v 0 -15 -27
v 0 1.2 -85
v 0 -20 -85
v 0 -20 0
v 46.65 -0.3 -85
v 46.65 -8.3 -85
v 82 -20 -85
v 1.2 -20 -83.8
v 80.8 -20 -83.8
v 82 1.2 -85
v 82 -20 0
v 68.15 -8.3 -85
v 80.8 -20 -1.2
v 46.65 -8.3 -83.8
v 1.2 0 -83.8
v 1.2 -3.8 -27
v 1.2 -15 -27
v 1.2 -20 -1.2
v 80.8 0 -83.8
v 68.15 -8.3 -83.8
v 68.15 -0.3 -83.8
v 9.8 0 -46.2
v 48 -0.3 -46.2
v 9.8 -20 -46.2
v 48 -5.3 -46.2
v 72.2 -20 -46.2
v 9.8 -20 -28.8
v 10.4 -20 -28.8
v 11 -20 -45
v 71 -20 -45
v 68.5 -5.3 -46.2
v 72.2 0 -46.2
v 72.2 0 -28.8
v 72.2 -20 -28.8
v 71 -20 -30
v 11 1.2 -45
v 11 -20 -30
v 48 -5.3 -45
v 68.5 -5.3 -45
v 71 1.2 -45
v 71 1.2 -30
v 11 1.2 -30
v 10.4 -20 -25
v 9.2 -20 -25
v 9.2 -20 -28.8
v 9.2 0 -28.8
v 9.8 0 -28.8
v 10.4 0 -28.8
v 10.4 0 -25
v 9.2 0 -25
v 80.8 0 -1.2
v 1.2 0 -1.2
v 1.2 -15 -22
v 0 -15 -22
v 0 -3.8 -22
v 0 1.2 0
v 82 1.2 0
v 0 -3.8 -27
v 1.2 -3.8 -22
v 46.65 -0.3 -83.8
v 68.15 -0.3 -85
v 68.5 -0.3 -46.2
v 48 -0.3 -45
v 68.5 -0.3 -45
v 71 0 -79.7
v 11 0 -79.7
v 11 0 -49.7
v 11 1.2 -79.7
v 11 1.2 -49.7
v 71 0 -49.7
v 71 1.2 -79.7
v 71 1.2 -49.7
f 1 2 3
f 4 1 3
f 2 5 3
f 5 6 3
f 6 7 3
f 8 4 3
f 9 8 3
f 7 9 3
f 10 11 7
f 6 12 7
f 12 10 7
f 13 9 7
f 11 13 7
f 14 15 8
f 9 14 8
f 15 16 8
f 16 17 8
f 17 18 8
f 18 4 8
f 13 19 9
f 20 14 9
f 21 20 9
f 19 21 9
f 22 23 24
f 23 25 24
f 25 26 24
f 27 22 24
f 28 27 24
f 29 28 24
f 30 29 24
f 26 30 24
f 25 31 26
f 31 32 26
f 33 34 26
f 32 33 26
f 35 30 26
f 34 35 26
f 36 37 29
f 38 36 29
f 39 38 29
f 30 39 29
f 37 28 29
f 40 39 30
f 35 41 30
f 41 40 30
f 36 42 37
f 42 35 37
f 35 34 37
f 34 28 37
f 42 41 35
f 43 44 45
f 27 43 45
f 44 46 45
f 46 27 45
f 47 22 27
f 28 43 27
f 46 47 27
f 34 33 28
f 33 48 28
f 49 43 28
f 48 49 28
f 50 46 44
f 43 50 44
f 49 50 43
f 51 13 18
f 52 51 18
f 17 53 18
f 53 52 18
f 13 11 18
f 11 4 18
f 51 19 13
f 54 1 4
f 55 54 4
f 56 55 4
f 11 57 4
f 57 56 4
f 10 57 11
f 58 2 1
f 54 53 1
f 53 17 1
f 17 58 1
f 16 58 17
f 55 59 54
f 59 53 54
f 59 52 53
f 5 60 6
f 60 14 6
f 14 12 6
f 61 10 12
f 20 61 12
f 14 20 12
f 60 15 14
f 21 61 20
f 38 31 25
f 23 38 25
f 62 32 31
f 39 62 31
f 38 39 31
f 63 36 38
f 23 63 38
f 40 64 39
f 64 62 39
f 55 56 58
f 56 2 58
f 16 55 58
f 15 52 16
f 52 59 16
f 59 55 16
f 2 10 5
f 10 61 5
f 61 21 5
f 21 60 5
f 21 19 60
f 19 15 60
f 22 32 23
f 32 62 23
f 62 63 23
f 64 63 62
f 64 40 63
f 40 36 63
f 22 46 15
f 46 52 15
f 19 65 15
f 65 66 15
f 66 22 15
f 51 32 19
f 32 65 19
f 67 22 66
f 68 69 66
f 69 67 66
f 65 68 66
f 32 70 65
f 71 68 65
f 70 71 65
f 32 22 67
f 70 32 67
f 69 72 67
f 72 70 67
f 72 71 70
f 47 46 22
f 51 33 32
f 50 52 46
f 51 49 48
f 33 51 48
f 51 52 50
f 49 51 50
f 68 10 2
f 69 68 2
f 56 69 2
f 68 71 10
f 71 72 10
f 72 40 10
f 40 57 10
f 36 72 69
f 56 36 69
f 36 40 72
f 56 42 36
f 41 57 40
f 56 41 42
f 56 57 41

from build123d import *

# Parameters (mm, degrees)
SKETCH1_W           = 82
SKETCH1_H           = 85
BOSS_EXTRUDE1_DEPTH = 1.2
SKETCH2_W           = 60
SKETCH2_H           = 30
CUT_EXTRUDE1_DEPTH  = 2
SKETCH3_W           = 60
SKETCH3_H           = 15
CUT_EXTRUDE2_DEPTH  = 2
SKETCH4_W           = 82
SKETCH4_H           = 85
SKETCH4_W_2         = 79.6
SKETCH4_H_2         = 82.6
BOSS_EXTRUDE2_DEPTH = 20
SKETCH5_W           = 62.4
SKETCH5_H           = 17.4
SKETCH5_W_2         = 60
SKETCH5_H_2         = 15
BOSS_EXTRUDE4_DEPTH = 20
SKETCH10_W          = 1.2
SKETCH10_H          = 3.8
BOSS_EXTRUDE5_DEPTH = 20
SKETCH11_W          = 5
SKETCH11_H          = 11.2
CUT_EXTRUDE3_DEPTH  = 1.5
SKETCH12_W          = 21.5
SKETCH12_H          = 8
CUT_EXTRUDE4_DEPTH  = 1.5
SKETCH15_W          = 20.5
SKETCH15_H          = 5
CUT_EXTRUDE5_DEPTH  = 1.5


with BuildPart() as part:
    # Sketch1 → Boss-Extrude1 (new body)
    with BuildSketch(Plane(origin=(0, 0, 0), x_dir=(1, 0, 0), z_dir=(0, 1, 0))):
        with Locations((41, 42.5)):
            Rectangle(SKETCH1_W, SKETCH1_H)
    extrude(amount=BOSS_EXTRUDE1_DEPTH)

    # Sketch2 → Cut-Extrude1 (cut)
    with BuildSketch(Plane(origin=(0, 1.2, 0), x_dir=(1, 0, 0), z_dir=(0, 1, 0))):
        with Locations((41, 64.7)):
            Rectangle(SKETCH2_W, SKETCH2_H)
    extrude(amount=-CUT_EXTRUDE1_DEPTH, mode=Mode.SUBTRACT)

    # Sketch3 → Cut-Extrude2 (cut)
    with BuildSketch(Plane(origin=(0, 1.2, 0), x_dir=(1, 0, 0), z_dir=(0, 1, 0))):
        with Locations((41, 37.5)):
            Rectangle(SKETCH3_W, SKETCH3_H)
    extrude(amount=-CUT_EXTRUDE2_DEPTH, mode=Mode.SUBTRACT)

    # Sketch4 → Boss-Extrude2 (add)
    with BuildSketch(Plane.XZ):
        with Locations((41, -42.5)):
            Rectangle(SKETCH4_W, SKETCH4_H)
        with Locations((41, -42.5)):
            Rectangle(SKETCH4_W_2, SKETCH4_H_2, mode=Mode.SUBTRACT)
    extrude(amount=BOSS_EXTRUDE2_DEPTH)

    # Sketch5 → Boss-Extrude4 (add)
    with BuildSketch(Plane.XZ):
        with Locations((41, -37.5)):
            Rectangle(SKETCH5_W, SKETCH5_H)
        with Locations((41, -37.5)):
            Rectangle(SKETCH5_W_2, SKETCH5_H_2, mode=Mode.SUBTRACT)
    extrude(amount=BOSS_EXTRUDE4_DEPTH)

    # Sketch10 → Boss-Extrude5 (add)
    with BuildSketch(Plane.XZ):
        with Locations((9.8, -26.9)):
            Rectangle(SKETCH10_W, SKETCH10_H)
    extrude(amount=BOSS_EXTRUDE5_DEPTH)

    # Sketch11 → Cut-Extrude3 (cut)
    with BuildSketch(Plane.ZY):
        with Locations((-24.5, -9.4)):
            Rectangle(SKETCH11_W, SKETCH11_H)
    extrude(amount=-CUT_EXTRUDE3_DEPTH, mode=Mode.SUBTRACT)

    # Sketch12 → Cut-Extrude4 (cut)
    with BuildSketch(Plane(origin=(0, 0, -85), x_dir=(-1, 0, 0), z_dir=(0, 0, -1))):
        with Locations((-57.4, -4.3)):
            Rectangle(SKETCH12_W, SKETCH12_H)
    extrude(amount=-CUT_EXTRUDE4_DEPTH, mode=Mode.SUBTRACT)

    # Sketch15 → Cut-Extrude5 (cut)
    with BuildSketch(Plane.XY.offset(-45)):
        with Locations((58.25, -2.8)):
            Rectangle(SKETCH15_W, SKETCH15_H)
    extrude(amount=-CUT_EXTRUDE5_DEPTH, mode=Mode.SUBTRACT)


solid = part.part
